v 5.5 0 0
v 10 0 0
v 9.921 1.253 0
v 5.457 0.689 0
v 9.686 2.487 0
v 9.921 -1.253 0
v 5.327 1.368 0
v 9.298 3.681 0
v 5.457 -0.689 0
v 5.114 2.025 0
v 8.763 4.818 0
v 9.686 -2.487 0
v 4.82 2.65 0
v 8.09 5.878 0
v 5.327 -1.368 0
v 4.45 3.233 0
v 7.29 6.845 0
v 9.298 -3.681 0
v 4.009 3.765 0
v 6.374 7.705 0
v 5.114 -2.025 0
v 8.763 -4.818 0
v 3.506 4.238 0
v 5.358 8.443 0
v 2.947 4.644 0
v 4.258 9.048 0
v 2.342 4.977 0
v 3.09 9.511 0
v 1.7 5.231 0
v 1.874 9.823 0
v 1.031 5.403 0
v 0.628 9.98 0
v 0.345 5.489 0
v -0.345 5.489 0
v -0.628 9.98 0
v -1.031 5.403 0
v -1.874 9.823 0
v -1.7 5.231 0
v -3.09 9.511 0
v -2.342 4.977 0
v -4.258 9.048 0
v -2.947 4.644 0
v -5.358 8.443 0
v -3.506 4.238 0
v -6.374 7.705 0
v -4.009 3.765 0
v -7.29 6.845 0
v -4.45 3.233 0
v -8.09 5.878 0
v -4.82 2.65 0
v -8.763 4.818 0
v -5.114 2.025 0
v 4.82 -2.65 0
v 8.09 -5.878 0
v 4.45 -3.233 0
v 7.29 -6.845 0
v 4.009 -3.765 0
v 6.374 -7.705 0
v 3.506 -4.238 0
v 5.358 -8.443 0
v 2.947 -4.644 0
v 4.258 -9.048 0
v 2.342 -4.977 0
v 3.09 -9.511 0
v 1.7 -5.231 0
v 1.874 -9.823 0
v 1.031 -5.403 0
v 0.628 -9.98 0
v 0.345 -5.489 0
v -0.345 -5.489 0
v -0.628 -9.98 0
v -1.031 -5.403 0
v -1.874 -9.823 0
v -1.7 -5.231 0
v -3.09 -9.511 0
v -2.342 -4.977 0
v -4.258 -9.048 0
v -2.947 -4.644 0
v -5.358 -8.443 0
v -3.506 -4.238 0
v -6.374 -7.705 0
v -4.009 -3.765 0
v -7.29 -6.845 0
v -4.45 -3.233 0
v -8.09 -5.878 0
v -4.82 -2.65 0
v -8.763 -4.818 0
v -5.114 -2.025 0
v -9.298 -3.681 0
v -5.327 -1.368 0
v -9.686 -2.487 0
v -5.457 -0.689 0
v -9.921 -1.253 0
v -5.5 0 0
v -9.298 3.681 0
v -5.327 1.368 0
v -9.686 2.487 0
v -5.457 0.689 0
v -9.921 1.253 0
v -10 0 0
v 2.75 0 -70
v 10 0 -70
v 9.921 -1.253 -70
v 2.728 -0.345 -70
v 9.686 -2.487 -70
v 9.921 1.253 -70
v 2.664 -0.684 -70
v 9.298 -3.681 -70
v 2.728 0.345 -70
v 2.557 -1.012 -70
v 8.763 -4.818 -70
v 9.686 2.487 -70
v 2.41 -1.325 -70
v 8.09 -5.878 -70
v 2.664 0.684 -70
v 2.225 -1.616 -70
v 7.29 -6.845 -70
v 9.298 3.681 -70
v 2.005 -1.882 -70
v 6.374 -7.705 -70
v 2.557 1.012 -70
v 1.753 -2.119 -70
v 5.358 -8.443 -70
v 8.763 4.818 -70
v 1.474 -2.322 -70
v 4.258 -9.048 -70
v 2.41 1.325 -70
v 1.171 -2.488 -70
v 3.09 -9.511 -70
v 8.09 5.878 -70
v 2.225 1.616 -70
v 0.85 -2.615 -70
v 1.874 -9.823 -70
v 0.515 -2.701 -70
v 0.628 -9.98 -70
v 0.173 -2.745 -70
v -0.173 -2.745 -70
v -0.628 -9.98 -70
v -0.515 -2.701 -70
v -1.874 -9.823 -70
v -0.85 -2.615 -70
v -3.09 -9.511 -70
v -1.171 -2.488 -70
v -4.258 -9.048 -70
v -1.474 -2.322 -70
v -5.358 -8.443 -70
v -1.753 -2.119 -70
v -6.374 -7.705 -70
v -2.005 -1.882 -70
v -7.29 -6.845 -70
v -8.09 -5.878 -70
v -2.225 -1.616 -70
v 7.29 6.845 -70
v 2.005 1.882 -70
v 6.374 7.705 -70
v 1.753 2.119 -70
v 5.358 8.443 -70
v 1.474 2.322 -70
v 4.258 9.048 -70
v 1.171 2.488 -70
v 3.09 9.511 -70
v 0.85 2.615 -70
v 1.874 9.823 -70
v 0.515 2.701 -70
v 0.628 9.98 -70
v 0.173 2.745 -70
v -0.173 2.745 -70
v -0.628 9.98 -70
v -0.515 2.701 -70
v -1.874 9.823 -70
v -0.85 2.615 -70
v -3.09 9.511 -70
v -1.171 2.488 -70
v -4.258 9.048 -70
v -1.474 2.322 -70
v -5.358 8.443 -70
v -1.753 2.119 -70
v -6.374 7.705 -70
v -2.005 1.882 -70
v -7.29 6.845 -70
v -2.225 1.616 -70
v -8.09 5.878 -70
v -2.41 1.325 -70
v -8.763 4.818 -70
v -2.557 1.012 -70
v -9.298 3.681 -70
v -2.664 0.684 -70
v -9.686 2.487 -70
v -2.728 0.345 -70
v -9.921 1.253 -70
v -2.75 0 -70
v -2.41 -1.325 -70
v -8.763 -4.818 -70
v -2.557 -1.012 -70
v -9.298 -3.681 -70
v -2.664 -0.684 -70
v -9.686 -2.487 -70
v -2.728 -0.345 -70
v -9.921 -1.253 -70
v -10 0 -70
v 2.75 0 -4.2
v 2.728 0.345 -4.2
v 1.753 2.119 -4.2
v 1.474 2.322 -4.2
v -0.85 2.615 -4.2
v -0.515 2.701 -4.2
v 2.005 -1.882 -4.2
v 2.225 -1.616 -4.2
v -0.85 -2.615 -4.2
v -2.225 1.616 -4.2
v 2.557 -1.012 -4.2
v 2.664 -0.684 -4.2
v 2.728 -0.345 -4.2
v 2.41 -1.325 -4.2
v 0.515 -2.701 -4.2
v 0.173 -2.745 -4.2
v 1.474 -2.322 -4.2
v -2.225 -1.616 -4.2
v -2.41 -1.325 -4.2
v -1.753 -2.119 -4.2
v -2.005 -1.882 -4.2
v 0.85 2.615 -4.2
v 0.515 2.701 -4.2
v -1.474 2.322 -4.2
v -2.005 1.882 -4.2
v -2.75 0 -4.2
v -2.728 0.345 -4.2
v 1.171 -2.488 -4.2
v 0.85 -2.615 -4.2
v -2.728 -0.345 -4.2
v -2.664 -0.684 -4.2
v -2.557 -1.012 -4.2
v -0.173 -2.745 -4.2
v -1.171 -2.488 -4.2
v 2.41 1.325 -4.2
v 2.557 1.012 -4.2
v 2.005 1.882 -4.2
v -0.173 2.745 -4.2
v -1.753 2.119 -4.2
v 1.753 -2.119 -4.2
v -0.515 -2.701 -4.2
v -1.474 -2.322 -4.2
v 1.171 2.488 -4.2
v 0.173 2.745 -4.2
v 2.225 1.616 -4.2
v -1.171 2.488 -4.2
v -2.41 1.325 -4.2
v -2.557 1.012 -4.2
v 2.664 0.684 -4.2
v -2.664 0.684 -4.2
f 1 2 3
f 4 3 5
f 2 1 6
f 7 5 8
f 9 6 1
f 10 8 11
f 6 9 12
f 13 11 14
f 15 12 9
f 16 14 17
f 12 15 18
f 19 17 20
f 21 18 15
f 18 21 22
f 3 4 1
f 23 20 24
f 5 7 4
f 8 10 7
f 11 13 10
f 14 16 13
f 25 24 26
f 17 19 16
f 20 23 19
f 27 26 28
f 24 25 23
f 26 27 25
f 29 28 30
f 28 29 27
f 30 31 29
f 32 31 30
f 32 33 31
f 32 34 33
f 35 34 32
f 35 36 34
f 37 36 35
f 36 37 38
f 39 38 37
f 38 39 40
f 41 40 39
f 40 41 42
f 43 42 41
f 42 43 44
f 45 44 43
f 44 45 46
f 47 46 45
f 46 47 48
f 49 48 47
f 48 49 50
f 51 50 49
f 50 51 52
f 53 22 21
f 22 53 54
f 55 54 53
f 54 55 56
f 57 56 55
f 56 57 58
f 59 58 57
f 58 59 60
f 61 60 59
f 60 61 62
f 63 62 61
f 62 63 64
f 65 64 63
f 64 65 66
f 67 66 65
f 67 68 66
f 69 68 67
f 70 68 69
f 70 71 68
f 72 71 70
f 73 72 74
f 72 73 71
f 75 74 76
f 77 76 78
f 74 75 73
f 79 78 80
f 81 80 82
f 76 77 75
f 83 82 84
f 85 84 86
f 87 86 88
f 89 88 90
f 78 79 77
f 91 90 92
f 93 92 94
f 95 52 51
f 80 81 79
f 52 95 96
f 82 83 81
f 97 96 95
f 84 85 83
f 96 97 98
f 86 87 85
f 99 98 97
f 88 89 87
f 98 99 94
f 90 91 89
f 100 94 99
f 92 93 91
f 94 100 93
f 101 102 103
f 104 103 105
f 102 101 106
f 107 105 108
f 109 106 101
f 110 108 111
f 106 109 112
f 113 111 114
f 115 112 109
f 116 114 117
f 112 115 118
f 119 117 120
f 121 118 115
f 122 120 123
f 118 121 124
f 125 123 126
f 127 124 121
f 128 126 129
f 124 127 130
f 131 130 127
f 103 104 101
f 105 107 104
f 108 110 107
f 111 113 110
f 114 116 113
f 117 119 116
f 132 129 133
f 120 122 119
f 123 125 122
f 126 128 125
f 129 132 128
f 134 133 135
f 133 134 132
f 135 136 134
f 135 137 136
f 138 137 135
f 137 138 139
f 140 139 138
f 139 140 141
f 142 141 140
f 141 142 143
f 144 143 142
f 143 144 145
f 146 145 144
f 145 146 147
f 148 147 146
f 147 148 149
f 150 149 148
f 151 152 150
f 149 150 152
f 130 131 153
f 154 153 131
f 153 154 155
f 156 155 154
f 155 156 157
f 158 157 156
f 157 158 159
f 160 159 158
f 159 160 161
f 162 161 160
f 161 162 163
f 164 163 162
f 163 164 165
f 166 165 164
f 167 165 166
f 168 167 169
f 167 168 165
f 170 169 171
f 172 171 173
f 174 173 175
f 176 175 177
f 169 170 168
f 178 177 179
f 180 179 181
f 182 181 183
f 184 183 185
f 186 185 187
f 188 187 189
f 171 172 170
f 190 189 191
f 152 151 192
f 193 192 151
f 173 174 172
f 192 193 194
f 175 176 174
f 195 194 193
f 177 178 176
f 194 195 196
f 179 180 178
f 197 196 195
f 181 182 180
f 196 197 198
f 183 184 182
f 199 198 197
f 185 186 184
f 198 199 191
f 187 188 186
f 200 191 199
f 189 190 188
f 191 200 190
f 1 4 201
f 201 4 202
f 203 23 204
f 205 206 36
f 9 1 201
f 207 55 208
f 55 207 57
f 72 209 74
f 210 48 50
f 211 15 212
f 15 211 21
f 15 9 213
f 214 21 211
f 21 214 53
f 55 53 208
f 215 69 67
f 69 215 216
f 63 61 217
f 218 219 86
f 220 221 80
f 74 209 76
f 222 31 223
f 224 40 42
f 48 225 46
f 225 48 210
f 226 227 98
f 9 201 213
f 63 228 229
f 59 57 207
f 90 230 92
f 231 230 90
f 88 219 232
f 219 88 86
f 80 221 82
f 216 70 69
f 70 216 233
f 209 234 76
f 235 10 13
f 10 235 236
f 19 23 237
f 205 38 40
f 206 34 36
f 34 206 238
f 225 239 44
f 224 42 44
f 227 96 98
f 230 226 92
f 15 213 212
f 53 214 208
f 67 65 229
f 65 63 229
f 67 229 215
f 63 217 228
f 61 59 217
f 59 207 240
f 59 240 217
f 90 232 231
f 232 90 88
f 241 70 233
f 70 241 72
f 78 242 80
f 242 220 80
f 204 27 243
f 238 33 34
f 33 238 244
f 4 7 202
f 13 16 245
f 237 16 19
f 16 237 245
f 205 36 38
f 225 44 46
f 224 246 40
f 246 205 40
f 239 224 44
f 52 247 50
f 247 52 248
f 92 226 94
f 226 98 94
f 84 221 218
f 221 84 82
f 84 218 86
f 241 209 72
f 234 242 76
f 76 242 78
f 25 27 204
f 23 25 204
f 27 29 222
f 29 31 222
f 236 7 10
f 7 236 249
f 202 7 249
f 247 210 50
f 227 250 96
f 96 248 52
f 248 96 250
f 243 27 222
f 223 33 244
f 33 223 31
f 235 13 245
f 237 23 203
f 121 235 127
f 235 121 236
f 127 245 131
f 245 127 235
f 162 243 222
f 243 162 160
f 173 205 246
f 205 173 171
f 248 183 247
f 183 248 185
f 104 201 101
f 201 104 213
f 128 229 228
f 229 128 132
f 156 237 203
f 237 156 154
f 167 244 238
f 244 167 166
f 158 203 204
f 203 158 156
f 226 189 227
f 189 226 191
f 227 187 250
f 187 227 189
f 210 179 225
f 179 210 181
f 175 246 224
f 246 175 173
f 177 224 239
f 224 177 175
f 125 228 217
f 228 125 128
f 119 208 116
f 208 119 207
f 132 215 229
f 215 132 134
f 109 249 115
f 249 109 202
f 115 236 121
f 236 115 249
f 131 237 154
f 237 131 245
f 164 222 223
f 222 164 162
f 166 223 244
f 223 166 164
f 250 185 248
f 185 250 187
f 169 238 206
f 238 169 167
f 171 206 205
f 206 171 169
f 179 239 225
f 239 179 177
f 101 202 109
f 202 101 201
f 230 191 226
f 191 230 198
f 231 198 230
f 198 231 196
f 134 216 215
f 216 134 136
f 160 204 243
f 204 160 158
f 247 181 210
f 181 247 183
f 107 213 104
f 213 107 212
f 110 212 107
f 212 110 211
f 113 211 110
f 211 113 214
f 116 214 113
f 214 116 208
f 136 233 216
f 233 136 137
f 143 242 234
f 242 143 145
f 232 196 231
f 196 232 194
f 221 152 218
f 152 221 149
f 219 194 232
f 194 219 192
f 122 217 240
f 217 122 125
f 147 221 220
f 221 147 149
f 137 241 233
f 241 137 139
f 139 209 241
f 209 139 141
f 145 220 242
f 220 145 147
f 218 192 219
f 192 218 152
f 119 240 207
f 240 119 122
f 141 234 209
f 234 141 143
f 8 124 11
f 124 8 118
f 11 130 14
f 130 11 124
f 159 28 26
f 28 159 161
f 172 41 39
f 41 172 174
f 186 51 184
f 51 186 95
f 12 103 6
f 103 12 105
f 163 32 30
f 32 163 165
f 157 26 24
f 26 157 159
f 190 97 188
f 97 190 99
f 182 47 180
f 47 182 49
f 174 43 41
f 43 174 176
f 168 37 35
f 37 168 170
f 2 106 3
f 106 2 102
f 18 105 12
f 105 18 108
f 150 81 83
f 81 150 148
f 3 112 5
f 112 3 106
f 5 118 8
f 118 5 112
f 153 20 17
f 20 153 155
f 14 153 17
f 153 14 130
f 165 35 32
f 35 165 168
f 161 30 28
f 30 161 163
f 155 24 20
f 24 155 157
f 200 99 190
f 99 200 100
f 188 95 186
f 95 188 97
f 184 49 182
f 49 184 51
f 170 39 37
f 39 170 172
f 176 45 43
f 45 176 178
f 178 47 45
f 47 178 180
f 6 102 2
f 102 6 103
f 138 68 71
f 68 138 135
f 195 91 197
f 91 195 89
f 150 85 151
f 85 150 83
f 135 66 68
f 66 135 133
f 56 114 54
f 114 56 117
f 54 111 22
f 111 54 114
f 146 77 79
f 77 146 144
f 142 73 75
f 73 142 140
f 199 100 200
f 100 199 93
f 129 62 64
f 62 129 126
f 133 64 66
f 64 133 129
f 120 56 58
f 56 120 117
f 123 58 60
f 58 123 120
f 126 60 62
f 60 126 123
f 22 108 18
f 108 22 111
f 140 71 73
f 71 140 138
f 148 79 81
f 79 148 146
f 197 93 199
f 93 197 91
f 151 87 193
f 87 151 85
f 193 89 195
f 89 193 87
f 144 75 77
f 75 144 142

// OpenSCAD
$fn = 50;


difference() {
	union() {
		translate(v = [0, 0, -70.0000000000]) {
			cylinder(h = 70, r = 10.0000000000);
		}
		cylinder(h = 0, r = 19.0000000000);
	}
	union() {
		translate(v = [0, 0, 0]) {
			rotate(a = [0, 0, 0]) {
				difference() {
					union() {
						#translate(v = [0, 0, -70.0000000000]) {
							cylinder(h = 70, r = 2.2500000000);
						}
						#translate(v = [0, 0, -4.2000000000]) {
							cylinder(h = 4.2000000000, r1 = 2.7500000000, r2 = 5.5000000000);
						}
						#translate(v = [0, 0, -70.0000000000]) {
							cylinder(h = 70, r = 2.7500000000);
						}
						#translate(v = [0, 0, -70.0000000000]) {
							cylinder(h = 70, r = 2.2500000000);
						}
					}
					union();
				}
			}
		}
	}
}
